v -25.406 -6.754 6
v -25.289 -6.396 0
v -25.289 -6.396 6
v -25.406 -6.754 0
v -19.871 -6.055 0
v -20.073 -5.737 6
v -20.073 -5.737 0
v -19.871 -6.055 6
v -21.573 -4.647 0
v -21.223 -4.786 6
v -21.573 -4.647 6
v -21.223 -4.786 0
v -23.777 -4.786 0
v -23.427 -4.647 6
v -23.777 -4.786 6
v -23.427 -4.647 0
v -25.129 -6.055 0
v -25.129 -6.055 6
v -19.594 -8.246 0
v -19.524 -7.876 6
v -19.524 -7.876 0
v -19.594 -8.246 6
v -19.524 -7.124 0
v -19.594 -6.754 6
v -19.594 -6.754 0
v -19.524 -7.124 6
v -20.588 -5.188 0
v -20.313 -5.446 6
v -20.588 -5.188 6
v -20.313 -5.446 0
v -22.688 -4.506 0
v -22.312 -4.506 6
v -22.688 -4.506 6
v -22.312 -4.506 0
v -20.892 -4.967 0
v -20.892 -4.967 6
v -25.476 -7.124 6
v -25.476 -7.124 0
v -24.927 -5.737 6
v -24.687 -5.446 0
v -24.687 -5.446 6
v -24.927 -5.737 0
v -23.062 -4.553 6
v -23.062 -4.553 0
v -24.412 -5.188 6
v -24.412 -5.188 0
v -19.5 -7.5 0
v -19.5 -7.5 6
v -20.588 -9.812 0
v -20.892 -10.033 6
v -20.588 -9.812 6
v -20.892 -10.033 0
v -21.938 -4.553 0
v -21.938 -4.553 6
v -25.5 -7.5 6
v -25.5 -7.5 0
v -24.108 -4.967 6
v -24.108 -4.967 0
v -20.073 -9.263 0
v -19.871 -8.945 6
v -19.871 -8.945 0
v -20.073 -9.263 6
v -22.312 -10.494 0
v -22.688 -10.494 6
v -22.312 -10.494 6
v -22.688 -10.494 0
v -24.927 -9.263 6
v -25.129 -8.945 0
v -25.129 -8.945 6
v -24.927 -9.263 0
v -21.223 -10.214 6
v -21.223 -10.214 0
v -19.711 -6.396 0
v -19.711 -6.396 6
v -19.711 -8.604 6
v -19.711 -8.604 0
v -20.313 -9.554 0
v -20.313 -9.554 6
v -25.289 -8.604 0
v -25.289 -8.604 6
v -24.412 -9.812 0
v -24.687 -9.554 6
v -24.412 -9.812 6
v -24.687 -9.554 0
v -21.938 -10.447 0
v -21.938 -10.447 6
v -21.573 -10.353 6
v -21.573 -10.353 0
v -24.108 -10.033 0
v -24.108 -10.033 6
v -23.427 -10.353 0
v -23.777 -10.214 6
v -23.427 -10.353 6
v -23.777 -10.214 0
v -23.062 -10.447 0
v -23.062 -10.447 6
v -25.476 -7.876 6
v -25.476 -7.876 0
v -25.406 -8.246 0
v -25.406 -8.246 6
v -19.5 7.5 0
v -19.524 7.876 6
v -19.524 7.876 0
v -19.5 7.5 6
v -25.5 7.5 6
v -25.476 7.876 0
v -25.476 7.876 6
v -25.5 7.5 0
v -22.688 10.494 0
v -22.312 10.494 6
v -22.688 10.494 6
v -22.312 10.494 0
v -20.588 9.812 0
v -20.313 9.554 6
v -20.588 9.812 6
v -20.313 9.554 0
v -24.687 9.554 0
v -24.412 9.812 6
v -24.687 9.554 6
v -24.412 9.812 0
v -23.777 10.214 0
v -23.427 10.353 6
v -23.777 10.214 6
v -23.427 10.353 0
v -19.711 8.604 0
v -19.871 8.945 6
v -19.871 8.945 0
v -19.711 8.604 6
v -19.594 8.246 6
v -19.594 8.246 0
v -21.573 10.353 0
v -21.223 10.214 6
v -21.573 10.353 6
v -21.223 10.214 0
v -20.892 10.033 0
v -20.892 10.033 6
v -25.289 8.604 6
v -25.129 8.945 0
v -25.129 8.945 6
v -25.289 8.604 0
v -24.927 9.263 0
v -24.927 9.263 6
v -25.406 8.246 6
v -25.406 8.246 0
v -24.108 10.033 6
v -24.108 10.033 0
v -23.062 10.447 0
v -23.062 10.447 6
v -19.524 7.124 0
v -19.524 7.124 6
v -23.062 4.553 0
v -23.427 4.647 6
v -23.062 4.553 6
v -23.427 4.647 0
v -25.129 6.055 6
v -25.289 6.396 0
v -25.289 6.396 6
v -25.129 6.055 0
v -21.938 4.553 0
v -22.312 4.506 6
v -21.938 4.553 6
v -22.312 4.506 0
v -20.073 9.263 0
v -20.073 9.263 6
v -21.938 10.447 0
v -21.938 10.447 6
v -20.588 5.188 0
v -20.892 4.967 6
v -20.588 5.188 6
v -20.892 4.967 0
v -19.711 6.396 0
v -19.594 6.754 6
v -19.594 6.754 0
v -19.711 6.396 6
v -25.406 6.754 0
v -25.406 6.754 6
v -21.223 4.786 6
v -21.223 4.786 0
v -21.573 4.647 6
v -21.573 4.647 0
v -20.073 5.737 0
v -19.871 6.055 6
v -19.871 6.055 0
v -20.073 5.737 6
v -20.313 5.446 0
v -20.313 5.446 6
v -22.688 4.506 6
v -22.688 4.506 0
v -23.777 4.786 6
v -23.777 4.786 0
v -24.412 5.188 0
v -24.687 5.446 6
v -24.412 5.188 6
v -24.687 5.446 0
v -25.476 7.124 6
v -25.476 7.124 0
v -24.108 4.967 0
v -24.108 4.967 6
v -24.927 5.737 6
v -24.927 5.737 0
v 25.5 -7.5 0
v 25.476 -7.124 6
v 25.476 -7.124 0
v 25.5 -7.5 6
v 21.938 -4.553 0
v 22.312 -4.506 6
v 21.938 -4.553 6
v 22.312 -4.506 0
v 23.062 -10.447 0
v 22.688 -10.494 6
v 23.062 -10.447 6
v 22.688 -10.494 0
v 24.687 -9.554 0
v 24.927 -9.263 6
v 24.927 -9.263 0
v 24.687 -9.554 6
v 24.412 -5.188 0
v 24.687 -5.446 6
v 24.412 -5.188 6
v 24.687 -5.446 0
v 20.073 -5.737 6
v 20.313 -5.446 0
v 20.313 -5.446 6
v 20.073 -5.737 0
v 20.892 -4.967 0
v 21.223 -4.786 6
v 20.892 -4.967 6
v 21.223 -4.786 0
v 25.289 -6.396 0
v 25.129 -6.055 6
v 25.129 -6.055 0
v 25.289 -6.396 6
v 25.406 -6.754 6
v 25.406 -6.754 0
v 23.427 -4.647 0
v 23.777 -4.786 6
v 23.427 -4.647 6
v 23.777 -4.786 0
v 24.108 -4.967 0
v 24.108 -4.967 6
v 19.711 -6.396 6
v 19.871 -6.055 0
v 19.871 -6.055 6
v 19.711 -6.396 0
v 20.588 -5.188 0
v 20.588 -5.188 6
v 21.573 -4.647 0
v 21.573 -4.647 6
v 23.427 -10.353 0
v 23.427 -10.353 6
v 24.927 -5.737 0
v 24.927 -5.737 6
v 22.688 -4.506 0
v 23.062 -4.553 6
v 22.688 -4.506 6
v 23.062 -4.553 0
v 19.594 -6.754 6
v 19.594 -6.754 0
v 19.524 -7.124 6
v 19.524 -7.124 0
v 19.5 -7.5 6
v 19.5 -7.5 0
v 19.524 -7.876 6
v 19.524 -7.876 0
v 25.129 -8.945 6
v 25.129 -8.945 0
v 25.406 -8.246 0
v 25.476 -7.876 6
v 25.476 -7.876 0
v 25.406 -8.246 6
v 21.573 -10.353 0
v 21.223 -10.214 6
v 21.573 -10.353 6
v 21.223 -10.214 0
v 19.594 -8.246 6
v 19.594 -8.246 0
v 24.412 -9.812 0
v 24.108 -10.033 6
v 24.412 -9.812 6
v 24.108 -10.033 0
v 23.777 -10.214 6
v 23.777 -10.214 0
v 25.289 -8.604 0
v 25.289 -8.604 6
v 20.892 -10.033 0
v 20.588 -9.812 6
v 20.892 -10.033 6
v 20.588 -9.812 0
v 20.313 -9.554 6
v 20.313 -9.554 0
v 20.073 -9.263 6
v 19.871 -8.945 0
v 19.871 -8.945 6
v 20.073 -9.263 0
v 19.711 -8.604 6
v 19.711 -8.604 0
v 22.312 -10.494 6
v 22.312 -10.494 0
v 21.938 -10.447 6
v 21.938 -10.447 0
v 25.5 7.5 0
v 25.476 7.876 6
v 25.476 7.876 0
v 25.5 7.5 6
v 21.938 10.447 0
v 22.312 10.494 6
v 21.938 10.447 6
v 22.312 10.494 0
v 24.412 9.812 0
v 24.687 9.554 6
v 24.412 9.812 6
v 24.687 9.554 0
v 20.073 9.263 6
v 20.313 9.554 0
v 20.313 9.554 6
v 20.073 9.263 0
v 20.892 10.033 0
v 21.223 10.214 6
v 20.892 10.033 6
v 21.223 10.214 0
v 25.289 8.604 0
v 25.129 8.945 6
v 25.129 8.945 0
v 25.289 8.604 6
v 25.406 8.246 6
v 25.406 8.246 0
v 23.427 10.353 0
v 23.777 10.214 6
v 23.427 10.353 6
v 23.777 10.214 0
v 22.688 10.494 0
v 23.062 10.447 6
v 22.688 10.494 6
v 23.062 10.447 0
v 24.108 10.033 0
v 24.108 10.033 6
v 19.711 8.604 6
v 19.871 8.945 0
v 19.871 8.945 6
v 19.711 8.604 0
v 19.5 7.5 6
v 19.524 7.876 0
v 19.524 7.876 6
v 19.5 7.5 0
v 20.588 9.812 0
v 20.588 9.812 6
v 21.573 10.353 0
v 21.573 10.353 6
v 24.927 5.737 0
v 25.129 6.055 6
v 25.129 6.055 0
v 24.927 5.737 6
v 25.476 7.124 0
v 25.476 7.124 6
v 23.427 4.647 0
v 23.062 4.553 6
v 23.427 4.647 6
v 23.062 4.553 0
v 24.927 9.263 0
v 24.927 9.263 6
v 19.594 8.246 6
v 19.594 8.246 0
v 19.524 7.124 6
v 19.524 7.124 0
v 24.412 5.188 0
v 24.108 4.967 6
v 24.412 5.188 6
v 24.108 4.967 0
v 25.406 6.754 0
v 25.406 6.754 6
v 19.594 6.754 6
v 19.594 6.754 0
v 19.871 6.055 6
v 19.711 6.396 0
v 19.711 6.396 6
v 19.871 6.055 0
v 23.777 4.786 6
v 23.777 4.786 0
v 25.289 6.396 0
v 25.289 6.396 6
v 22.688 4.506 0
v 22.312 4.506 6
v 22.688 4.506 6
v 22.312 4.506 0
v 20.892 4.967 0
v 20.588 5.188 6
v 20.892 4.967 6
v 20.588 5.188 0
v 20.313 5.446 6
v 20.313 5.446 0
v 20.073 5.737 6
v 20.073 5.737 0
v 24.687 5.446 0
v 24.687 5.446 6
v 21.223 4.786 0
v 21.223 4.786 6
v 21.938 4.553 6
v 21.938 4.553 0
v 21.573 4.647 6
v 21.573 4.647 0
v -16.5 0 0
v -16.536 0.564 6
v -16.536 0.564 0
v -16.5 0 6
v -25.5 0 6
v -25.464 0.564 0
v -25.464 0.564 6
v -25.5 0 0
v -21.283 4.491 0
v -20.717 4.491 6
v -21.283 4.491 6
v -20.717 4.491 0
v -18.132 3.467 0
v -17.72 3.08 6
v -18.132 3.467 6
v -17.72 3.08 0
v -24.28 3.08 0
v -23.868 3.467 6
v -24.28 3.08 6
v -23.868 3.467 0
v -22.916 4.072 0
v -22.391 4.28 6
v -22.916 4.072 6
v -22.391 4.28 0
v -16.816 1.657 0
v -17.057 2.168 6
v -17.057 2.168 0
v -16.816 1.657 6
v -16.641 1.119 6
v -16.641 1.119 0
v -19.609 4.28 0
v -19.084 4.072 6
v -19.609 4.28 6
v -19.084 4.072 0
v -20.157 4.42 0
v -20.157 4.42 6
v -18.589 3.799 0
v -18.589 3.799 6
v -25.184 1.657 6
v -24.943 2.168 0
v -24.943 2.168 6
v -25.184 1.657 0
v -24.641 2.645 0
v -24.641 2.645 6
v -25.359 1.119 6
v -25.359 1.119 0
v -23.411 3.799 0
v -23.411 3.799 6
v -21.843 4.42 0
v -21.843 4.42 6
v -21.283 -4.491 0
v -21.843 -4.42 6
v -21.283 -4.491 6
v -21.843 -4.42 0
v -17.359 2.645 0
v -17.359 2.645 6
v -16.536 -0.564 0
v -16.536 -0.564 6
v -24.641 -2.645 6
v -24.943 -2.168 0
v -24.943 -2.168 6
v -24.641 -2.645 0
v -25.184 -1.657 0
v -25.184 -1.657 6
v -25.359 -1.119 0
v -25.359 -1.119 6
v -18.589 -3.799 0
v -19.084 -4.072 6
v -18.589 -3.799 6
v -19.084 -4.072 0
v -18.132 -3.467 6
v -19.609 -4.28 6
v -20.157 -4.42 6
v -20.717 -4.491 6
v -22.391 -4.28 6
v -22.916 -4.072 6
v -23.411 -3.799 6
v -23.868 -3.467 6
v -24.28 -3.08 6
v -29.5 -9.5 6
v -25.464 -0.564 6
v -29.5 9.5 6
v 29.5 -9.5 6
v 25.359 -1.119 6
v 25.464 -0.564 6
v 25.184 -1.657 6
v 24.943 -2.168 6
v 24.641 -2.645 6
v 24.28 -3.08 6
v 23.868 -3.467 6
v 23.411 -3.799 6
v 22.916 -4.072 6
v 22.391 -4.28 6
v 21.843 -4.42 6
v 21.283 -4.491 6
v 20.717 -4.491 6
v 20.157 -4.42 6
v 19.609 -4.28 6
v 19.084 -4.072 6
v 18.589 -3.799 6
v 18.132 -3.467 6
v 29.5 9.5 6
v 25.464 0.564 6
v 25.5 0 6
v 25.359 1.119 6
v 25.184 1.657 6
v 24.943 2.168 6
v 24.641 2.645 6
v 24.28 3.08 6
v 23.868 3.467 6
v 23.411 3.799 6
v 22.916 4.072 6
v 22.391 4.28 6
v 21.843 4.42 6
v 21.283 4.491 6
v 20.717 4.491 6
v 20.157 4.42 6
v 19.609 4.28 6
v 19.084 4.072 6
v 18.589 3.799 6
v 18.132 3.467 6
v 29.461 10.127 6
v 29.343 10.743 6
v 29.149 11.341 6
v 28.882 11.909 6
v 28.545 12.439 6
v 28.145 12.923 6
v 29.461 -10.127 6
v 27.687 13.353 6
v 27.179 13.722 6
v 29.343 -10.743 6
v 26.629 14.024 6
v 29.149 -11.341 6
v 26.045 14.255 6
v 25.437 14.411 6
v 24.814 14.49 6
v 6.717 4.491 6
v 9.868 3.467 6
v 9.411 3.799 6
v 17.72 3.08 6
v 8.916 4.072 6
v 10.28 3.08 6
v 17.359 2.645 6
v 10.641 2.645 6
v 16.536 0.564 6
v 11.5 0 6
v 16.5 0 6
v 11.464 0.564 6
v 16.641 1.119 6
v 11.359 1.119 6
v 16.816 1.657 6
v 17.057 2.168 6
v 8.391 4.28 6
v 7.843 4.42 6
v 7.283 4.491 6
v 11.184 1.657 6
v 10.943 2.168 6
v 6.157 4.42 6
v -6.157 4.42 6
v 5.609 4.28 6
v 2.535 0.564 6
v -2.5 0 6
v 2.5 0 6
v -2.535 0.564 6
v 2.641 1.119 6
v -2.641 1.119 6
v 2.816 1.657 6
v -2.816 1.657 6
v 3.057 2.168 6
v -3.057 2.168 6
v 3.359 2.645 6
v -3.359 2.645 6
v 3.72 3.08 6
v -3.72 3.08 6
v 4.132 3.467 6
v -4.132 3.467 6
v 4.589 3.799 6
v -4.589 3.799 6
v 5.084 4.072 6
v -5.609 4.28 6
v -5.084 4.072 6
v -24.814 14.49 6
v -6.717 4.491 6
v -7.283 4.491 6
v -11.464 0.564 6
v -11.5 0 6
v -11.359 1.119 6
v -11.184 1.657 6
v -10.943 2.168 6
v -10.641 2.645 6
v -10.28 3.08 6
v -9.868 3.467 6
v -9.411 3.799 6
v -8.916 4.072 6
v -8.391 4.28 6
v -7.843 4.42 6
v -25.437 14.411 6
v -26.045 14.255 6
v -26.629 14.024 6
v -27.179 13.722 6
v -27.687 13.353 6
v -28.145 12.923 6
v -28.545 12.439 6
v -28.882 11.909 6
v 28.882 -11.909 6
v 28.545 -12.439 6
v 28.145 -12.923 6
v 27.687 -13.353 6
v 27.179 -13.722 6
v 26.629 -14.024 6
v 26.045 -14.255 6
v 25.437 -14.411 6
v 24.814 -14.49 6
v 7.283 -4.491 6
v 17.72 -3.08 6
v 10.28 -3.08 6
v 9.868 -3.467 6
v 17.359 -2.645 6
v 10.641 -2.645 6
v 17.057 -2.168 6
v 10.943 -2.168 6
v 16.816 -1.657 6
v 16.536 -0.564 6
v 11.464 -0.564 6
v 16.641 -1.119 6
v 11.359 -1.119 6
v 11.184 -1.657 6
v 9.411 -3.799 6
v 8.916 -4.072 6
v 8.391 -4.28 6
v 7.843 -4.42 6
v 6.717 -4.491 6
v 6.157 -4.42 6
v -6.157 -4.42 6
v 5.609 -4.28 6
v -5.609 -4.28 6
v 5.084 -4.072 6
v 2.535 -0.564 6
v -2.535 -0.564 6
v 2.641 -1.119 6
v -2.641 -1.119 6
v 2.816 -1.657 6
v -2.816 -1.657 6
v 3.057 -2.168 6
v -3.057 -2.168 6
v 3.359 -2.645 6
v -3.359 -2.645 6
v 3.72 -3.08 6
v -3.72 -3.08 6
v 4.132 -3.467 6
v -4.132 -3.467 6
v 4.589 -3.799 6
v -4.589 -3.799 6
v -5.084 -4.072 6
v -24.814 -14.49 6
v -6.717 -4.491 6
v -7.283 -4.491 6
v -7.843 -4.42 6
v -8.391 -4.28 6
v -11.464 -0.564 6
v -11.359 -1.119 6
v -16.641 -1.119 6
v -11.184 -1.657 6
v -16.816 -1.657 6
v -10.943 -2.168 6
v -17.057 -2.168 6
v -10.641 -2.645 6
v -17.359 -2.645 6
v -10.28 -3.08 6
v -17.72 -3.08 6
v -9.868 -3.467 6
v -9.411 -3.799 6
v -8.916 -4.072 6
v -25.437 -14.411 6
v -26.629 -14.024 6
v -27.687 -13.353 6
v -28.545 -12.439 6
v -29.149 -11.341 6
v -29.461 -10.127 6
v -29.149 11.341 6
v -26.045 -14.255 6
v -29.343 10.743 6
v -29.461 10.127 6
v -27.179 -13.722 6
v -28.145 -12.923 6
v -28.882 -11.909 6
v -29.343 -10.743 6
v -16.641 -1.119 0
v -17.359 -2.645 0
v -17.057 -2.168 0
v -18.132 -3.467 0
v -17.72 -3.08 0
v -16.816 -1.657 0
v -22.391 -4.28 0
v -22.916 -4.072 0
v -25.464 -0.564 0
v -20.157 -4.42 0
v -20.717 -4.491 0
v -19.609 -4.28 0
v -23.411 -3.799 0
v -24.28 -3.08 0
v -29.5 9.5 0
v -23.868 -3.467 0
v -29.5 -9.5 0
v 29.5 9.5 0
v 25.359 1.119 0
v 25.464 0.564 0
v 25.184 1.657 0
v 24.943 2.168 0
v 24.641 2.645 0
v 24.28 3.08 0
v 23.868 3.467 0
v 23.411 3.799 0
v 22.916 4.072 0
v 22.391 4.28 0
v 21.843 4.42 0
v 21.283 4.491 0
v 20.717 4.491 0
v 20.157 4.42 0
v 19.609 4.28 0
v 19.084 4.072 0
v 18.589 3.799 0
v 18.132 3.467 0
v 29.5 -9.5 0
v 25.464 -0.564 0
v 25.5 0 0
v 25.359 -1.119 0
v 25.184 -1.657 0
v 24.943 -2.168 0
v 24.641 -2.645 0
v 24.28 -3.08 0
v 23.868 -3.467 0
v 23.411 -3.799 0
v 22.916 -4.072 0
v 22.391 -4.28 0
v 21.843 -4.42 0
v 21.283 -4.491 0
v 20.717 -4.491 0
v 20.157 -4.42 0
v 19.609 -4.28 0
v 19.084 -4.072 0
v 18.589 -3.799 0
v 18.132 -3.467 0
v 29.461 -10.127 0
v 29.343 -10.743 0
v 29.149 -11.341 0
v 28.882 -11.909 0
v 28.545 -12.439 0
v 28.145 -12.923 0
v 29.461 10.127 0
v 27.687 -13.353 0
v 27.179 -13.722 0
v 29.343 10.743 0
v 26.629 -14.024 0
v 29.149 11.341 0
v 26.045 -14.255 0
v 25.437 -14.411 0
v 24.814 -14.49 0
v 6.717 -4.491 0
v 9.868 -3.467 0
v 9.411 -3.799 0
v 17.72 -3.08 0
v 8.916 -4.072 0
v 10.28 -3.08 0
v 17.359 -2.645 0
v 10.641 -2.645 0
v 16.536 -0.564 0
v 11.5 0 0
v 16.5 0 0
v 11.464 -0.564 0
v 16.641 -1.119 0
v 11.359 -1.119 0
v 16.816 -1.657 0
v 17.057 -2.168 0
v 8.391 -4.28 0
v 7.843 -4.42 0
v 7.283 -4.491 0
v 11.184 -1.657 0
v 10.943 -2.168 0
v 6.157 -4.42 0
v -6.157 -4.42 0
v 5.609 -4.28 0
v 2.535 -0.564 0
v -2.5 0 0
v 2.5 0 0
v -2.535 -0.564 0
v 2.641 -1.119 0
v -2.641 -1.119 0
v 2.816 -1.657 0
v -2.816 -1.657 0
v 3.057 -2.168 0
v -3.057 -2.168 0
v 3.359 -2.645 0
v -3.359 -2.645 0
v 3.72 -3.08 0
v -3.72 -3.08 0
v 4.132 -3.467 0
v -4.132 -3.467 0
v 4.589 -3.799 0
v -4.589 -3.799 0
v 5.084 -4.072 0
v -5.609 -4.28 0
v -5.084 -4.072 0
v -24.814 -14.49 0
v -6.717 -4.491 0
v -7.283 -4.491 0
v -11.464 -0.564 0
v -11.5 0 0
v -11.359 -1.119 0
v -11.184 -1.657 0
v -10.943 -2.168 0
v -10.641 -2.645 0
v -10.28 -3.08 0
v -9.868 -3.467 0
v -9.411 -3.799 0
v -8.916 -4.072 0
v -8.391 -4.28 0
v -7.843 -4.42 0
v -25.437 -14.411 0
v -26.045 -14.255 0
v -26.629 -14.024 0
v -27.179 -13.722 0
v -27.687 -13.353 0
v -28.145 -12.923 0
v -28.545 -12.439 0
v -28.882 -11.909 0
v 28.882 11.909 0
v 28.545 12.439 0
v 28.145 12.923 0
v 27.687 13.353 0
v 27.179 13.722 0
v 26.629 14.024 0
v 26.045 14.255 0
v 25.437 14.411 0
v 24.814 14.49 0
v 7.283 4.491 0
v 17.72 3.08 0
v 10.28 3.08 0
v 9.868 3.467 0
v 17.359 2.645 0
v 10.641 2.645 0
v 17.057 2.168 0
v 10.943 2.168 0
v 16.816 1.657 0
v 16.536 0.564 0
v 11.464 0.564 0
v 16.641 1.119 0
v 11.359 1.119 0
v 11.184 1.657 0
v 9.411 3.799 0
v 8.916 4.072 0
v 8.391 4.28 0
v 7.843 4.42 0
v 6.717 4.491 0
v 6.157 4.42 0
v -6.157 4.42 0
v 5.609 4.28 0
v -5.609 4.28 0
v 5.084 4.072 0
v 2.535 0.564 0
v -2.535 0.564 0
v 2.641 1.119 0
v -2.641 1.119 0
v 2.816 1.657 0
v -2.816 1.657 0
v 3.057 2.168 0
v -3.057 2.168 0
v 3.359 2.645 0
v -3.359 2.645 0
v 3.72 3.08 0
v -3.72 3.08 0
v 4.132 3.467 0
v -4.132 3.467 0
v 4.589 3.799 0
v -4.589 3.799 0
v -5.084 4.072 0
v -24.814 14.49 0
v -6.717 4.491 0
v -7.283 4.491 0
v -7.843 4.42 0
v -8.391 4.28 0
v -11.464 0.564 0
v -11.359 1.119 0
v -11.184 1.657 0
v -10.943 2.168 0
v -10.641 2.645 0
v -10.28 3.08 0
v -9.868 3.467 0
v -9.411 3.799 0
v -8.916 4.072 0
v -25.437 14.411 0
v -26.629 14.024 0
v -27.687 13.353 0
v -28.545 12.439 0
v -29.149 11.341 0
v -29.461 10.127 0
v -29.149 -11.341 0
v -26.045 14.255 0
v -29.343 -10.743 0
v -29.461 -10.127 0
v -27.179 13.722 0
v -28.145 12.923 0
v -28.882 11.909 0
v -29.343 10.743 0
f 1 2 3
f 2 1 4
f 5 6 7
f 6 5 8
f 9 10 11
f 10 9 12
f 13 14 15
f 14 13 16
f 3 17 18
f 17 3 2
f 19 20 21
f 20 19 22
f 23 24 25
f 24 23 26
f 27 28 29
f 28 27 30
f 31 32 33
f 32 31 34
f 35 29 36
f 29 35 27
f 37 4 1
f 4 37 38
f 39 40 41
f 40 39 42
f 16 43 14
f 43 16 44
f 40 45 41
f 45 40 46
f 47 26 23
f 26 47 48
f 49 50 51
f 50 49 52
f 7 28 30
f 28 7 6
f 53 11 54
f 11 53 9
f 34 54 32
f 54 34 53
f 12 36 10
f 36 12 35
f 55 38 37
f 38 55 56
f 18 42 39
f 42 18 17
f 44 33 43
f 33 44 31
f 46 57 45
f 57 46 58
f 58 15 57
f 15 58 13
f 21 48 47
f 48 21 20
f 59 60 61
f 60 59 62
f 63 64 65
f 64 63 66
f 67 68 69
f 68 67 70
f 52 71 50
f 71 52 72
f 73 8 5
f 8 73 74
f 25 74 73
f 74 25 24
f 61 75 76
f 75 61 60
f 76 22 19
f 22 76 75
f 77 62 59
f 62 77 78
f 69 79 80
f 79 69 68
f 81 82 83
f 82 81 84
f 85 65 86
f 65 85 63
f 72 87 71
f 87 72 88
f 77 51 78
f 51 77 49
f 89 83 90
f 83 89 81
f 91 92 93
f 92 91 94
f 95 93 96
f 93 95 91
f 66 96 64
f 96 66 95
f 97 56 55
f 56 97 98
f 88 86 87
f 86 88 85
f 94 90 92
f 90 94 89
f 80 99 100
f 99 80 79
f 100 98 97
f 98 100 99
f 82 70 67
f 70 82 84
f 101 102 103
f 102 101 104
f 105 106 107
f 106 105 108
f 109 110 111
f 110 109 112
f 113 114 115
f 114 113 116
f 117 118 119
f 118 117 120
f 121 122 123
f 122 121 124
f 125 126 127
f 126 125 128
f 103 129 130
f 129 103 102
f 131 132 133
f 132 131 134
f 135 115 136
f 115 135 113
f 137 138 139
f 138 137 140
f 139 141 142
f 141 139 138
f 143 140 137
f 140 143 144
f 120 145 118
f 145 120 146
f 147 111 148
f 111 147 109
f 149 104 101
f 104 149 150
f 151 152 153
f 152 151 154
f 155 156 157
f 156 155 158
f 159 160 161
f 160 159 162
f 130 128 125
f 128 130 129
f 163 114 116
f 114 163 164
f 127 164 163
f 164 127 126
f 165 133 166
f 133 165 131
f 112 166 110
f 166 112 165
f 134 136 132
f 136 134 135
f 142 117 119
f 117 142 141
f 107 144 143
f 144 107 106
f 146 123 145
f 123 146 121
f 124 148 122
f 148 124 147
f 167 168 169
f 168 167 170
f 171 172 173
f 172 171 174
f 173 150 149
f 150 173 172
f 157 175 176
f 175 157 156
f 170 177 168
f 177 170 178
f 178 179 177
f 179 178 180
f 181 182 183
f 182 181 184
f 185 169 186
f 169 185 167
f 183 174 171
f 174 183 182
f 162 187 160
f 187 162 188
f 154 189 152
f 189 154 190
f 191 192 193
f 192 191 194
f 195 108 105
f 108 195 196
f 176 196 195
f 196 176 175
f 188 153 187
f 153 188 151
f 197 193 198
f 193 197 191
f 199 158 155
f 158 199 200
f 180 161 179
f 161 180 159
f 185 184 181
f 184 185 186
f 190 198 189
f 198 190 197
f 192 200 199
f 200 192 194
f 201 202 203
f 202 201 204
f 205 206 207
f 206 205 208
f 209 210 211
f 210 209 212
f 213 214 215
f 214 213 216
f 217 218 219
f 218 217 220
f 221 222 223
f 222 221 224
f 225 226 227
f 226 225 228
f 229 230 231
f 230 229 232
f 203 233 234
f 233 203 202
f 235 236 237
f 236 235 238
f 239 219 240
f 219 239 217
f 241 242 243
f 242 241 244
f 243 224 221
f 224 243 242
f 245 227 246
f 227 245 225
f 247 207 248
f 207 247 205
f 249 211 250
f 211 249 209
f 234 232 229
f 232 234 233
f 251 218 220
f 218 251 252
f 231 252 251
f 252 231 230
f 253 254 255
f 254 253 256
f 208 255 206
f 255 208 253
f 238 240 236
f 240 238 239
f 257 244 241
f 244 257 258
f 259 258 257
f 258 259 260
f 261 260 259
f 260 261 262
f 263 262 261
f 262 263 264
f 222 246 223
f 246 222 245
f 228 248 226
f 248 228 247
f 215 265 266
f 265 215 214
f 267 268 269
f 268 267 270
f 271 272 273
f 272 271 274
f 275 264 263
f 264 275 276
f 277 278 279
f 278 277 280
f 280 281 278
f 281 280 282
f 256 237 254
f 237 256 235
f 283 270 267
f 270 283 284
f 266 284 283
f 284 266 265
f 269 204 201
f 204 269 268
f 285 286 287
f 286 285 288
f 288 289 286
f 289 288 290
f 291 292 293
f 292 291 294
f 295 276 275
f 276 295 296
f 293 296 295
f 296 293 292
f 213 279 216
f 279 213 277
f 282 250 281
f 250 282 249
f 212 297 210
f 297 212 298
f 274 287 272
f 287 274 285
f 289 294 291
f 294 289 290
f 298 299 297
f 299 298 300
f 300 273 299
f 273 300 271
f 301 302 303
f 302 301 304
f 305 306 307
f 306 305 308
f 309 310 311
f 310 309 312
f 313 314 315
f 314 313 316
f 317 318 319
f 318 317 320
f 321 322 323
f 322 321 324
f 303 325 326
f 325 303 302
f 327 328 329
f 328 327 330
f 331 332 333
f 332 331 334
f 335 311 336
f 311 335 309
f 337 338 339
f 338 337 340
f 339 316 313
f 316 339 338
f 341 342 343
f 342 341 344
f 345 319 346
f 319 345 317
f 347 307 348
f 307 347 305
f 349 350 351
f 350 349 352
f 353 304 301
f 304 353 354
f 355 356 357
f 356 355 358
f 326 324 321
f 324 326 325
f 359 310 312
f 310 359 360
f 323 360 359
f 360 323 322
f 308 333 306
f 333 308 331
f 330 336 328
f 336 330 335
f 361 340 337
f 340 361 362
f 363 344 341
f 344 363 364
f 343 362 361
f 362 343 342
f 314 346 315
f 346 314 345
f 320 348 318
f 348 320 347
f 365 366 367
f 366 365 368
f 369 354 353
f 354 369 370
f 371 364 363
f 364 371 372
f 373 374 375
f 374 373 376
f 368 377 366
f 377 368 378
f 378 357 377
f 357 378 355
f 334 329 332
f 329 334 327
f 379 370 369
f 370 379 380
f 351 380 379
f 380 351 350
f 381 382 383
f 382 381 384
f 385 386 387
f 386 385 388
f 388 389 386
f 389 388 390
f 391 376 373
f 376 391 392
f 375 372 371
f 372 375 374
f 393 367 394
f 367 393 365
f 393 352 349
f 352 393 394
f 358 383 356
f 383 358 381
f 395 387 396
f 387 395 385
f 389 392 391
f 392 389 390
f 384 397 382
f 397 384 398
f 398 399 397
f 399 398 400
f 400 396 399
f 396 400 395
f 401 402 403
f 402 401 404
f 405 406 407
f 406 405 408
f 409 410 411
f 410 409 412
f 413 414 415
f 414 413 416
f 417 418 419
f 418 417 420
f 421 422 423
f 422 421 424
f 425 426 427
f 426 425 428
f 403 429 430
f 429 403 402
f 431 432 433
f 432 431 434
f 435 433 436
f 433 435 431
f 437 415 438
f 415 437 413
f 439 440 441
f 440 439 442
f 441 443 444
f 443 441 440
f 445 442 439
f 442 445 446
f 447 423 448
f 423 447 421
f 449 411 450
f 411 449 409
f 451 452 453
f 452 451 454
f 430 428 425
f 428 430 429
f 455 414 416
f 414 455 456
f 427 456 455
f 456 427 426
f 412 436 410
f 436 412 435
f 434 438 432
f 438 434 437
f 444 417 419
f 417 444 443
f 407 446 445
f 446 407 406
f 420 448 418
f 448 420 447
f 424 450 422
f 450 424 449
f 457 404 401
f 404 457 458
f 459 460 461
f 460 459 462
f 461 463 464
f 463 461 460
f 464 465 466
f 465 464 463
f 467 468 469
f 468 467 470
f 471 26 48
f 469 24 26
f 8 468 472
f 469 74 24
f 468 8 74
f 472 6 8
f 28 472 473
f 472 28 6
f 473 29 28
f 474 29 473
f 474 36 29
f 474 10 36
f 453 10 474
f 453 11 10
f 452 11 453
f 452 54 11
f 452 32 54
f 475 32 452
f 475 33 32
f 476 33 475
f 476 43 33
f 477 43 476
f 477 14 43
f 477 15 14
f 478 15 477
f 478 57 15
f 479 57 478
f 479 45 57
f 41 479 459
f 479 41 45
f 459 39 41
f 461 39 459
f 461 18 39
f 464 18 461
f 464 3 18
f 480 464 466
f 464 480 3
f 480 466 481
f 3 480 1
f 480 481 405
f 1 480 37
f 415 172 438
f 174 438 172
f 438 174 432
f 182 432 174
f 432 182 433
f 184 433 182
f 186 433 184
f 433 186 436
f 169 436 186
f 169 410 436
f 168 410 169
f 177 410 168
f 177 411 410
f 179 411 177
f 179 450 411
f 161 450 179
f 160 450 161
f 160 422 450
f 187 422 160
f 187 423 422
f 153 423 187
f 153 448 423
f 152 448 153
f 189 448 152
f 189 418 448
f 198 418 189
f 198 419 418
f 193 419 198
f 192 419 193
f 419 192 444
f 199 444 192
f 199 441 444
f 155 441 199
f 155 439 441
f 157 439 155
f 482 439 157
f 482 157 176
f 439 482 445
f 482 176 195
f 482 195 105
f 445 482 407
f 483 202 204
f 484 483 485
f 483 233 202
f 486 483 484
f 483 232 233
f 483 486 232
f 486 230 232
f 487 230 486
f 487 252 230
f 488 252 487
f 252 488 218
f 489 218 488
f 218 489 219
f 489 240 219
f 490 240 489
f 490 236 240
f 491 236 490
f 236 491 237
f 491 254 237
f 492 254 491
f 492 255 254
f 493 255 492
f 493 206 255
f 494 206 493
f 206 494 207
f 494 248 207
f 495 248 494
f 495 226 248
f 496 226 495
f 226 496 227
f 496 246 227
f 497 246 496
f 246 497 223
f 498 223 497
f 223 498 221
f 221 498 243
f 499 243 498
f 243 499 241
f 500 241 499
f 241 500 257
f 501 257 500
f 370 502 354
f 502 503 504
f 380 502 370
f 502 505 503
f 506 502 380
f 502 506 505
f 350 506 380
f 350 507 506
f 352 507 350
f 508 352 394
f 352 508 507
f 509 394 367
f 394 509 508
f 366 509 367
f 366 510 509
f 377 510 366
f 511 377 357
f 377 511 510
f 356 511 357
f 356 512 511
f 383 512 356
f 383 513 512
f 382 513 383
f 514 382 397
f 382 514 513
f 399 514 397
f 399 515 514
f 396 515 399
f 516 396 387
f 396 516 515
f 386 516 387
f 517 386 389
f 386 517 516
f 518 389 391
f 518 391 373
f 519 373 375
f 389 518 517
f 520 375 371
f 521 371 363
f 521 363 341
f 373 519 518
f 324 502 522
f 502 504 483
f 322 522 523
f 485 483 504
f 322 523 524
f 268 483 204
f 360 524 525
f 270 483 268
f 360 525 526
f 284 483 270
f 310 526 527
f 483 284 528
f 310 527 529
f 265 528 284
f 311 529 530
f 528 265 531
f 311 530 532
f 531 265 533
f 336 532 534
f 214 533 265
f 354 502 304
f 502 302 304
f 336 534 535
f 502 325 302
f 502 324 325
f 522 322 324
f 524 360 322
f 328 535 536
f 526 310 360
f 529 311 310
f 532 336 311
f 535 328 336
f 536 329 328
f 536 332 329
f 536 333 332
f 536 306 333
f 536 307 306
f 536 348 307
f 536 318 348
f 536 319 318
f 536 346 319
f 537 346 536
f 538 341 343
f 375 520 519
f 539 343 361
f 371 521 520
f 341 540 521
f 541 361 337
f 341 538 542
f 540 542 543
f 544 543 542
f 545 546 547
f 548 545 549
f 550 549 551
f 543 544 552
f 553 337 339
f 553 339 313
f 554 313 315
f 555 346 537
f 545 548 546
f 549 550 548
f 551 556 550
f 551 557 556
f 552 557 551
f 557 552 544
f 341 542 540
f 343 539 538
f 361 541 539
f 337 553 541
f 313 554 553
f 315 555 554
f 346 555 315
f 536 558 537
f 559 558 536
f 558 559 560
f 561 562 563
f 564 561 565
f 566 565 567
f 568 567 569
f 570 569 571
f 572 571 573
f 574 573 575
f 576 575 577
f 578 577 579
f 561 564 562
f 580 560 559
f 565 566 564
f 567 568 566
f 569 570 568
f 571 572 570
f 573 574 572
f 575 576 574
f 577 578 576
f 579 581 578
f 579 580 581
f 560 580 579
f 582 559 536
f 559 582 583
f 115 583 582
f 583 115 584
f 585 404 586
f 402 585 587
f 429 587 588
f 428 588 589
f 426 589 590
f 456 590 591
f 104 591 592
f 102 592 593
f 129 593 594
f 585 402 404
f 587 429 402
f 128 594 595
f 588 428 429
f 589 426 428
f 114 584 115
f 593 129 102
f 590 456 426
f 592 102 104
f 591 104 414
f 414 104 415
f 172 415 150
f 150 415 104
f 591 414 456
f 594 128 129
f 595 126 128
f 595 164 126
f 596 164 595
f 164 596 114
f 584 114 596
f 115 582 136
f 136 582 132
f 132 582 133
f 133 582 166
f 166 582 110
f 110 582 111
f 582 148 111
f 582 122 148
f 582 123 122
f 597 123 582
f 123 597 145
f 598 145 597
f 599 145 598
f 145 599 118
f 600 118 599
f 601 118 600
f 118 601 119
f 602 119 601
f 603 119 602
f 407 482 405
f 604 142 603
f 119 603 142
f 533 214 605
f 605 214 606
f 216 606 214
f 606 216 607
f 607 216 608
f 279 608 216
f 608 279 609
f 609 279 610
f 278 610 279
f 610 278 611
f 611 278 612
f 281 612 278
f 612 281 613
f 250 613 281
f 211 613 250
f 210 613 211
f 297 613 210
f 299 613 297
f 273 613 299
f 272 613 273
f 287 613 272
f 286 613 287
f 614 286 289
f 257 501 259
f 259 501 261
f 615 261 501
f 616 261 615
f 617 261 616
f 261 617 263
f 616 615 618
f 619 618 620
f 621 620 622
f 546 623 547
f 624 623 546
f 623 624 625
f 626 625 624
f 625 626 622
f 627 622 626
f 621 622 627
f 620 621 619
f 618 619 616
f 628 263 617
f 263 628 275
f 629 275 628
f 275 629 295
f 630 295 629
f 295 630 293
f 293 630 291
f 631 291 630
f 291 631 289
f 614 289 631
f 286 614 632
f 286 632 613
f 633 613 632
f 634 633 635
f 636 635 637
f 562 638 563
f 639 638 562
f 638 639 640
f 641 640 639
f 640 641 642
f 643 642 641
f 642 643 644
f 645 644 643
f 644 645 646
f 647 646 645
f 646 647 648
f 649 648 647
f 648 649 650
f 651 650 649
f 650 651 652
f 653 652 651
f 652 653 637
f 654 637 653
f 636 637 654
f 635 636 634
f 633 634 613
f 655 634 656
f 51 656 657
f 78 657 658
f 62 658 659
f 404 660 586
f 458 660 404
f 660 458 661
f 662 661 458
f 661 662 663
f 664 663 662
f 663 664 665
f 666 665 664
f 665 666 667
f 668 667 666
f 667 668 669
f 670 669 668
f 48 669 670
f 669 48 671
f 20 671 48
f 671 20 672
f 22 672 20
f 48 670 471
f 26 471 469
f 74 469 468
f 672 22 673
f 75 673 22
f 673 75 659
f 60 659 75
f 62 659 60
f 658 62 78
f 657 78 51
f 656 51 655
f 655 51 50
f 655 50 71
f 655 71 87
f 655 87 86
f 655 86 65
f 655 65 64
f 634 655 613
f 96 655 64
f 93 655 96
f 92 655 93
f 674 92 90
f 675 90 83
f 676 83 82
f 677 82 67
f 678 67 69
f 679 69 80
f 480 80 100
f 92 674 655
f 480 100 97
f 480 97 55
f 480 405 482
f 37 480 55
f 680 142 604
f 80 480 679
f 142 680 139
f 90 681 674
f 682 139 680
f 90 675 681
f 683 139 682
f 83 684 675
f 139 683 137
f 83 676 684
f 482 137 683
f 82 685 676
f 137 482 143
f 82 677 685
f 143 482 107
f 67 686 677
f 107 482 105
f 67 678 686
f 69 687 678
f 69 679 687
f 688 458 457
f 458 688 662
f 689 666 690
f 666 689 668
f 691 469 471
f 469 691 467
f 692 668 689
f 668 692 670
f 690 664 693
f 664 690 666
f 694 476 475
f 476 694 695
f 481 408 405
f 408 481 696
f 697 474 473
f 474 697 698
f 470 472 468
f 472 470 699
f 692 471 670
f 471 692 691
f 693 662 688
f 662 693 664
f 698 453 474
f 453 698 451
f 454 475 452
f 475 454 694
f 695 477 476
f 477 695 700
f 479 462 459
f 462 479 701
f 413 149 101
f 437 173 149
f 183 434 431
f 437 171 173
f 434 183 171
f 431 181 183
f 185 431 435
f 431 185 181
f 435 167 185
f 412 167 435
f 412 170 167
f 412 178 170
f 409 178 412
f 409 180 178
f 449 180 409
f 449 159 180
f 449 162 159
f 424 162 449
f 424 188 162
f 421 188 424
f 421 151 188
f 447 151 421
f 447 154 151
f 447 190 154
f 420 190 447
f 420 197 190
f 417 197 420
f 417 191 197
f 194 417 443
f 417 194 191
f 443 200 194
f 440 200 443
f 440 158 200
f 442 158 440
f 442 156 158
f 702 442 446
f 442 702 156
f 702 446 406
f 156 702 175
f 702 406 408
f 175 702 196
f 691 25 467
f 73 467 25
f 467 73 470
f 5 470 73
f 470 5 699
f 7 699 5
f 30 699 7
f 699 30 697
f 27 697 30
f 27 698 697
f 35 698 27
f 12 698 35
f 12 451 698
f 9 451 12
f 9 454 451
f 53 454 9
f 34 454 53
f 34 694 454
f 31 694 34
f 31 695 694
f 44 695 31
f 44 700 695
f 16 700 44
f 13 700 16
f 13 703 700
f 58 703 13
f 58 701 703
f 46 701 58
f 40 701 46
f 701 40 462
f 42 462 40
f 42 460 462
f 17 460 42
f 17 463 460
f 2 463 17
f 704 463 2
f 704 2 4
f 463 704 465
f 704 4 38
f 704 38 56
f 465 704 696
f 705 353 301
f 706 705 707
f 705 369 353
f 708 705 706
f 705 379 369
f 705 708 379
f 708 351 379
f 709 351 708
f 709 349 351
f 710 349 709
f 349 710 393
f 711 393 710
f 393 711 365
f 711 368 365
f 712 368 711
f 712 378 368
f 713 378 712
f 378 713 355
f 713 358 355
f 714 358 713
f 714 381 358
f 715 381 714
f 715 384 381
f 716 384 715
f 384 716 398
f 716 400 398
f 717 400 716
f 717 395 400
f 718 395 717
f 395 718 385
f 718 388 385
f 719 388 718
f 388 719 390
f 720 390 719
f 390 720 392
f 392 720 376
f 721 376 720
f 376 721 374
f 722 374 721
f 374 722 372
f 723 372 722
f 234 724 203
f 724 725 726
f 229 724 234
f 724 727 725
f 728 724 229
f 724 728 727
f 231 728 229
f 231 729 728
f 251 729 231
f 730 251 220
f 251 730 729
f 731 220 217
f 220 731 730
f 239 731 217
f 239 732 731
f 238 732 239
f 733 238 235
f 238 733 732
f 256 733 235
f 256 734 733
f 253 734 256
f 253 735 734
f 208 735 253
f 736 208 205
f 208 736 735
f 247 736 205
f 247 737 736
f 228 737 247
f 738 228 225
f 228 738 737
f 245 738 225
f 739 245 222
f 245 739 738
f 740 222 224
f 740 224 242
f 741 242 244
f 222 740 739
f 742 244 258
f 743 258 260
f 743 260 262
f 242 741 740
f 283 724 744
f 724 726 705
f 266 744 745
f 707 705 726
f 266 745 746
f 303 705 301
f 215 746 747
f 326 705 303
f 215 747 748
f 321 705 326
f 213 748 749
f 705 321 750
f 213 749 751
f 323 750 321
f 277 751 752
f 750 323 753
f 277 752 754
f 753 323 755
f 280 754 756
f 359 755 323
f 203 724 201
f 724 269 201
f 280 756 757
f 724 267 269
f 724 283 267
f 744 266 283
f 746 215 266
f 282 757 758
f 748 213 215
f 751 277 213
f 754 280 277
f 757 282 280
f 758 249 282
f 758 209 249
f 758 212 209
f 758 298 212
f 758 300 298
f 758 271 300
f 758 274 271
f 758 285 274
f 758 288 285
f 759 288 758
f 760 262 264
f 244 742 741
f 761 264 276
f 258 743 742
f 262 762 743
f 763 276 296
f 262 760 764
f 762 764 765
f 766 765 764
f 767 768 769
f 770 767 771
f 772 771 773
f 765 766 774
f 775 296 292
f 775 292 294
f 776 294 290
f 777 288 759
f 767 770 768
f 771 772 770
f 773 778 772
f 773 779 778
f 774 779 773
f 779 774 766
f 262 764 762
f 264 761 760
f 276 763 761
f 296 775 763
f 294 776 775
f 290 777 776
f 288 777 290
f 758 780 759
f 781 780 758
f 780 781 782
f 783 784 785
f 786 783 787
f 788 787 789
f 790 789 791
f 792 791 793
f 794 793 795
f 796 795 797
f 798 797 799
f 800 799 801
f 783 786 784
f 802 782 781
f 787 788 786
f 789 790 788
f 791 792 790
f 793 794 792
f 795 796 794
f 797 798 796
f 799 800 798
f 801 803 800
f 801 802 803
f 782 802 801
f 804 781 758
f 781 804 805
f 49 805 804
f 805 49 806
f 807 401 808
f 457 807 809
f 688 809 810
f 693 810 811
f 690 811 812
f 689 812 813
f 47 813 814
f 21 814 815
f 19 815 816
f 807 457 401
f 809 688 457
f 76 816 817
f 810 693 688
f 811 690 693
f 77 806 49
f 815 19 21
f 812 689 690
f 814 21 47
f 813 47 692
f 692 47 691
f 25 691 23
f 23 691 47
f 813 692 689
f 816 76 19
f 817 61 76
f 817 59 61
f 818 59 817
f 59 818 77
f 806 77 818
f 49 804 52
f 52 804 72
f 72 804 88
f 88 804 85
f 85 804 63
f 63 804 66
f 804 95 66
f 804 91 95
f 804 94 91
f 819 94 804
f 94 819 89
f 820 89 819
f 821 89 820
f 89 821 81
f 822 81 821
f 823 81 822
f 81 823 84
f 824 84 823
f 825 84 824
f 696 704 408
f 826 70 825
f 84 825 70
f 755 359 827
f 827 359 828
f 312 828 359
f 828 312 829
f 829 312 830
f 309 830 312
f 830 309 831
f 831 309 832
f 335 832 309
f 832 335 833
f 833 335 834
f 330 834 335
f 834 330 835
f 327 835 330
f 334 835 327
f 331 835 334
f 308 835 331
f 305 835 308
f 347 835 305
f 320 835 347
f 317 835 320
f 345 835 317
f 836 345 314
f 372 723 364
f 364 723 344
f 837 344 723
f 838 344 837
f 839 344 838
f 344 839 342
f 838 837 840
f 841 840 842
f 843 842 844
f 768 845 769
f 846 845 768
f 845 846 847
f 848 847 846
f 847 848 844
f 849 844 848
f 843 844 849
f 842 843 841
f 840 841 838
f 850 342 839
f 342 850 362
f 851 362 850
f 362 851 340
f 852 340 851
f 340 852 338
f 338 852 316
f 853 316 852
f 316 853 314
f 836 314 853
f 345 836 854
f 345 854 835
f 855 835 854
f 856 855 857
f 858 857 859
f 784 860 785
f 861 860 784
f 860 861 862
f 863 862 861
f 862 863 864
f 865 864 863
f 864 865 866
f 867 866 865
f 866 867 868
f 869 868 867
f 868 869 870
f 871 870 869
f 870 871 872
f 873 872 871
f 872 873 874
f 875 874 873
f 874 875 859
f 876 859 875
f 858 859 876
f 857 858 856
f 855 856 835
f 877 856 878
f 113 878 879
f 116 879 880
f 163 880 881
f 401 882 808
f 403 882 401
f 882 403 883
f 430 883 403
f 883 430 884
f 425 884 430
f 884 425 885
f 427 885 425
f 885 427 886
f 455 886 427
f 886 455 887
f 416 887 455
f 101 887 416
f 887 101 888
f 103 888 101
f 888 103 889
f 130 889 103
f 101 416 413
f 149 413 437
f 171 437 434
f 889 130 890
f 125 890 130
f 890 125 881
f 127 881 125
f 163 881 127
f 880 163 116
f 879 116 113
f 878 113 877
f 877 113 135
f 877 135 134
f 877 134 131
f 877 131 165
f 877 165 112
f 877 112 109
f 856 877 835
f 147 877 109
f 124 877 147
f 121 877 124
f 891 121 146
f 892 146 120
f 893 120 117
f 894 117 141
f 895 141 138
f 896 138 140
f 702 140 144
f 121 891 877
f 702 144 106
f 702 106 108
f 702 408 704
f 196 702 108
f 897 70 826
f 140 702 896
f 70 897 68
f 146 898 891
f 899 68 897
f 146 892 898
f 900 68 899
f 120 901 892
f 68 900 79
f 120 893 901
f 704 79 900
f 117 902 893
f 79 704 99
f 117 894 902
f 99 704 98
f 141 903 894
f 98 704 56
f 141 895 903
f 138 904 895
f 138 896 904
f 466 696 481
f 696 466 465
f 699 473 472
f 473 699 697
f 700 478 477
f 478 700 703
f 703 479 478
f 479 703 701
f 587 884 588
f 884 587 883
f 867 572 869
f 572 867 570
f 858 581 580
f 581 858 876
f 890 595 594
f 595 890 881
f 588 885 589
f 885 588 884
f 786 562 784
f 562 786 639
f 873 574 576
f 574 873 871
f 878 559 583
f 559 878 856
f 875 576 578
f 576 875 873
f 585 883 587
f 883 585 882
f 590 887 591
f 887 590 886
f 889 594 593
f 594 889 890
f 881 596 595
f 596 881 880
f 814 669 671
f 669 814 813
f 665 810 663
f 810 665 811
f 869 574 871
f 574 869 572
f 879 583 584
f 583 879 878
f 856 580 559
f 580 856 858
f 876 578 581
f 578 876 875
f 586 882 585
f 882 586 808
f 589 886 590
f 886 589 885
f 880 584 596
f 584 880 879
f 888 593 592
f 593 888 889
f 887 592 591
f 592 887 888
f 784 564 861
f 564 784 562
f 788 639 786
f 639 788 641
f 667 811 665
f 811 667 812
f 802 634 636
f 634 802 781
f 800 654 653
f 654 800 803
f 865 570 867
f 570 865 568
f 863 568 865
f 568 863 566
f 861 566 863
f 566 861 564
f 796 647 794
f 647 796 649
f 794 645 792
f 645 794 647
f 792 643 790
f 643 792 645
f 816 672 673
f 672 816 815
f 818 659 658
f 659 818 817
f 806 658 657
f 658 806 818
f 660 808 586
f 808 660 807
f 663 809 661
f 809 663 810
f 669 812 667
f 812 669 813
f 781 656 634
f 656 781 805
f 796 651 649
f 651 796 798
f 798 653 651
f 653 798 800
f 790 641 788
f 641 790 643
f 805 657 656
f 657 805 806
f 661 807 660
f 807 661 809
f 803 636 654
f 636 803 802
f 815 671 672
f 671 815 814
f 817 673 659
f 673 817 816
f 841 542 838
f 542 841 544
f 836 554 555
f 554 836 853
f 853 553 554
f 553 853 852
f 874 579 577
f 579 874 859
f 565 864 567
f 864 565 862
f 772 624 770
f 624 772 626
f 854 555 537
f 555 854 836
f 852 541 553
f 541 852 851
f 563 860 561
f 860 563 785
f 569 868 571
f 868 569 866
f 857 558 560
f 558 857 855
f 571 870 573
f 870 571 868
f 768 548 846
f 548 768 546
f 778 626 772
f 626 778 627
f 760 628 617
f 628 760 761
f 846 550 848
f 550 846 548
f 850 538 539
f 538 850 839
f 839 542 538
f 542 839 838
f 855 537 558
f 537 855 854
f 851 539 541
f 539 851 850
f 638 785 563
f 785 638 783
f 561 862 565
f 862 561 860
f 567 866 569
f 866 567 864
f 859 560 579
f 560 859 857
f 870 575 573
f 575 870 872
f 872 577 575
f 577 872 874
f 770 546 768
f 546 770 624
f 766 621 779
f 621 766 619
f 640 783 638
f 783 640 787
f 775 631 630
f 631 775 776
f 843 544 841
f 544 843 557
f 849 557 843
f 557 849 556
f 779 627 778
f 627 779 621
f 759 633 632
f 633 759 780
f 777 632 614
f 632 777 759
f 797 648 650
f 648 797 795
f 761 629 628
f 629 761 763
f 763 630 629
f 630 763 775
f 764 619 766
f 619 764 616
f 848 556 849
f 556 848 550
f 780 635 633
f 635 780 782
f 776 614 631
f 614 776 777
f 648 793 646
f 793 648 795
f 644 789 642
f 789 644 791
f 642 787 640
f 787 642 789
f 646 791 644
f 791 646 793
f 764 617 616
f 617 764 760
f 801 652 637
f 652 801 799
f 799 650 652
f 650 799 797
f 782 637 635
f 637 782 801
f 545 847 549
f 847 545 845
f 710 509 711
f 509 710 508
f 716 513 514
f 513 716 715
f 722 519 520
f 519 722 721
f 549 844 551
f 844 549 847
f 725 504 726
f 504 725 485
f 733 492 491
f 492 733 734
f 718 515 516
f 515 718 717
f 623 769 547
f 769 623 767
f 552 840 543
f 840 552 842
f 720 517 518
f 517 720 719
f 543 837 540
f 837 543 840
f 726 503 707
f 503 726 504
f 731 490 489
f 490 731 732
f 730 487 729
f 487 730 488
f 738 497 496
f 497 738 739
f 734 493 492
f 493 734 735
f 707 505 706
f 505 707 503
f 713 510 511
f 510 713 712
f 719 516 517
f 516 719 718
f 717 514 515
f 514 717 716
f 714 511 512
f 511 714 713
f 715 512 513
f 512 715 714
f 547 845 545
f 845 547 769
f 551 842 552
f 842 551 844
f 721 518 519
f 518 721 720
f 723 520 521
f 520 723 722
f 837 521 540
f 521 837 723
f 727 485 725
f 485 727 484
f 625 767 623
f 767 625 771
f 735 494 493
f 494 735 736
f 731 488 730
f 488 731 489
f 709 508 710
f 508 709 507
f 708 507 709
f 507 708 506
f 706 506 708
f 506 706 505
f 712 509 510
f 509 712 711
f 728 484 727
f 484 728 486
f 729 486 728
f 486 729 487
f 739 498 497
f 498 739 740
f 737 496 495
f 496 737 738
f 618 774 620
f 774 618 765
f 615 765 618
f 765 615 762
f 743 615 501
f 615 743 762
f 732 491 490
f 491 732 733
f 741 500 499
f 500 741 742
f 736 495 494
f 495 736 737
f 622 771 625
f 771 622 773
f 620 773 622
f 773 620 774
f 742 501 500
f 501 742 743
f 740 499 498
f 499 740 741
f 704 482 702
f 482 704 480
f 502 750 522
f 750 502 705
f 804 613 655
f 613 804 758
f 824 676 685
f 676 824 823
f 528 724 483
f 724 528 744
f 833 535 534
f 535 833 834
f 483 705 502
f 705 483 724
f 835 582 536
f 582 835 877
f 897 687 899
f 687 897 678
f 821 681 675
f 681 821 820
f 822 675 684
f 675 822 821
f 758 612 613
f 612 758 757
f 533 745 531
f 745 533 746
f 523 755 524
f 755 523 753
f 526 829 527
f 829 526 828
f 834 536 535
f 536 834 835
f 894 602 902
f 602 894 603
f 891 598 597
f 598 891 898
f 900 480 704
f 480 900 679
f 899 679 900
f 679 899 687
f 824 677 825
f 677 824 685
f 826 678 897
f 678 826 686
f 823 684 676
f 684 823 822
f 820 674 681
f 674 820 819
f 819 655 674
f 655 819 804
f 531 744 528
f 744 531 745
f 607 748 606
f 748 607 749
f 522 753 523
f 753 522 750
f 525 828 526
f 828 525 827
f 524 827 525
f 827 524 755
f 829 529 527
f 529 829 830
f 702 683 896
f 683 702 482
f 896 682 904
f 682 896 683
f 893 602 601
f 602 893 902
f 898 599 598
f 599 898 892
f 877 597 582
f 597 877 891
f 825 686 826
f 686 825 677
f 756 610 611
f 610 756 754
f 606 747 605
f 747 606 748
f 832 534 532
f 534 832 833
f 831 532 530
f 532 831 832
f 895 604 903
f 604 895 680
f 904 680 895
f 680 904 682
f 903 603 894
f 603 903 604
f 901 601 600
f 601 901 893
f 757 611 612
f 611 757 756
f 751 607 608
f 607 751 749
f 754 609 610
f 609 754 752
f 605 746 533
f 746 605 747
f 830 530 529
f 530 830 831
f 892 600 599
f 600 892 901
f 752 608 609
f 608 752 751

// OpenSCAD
$fn = 50;


difference() {
	union() {
		hull() {
			translate(v = [-24.5000000000, 9.5000000000, 0]) {
				cylinder(h = 6, r = 5);
			}
			translate(v = [24.5000000000, 9.5000000000, 0]) {
				cylinder(h = 6, r = 5);
			}
			translate(v = [-24.5000000000, -9.5000000000, 0]) {
				cylinder(h = 6, r = 5);
			}
			translate(v = [24.5000000000, -9.5000000000, 0]) {
				cylinder(h = 6, r = 5);
			}
		}
	}
	union() {
		#translate(v = [-22.5000000000, -7.5000000000, -100.0000000000]) {
			cylinder(h = 200, r = 3.0000000000);
		}
		#translate(v = [-22.5000000000, 7.5000000000, -100.0000000000]) {
			cylinder(h = 200, r = 3.0000000000);
		}
		#translate(v = [22.5000000000, -7.5000000000, -100.0000000000]) {
			cylinder(h = 200, r = 3.0000000000);
		}
		#translate(v = [22.5000000000, 7.5000000000, -100.0000000000]) {
			cylinder(h = 200, r = 3.0000000000);
		}
		#translate(v = [-21.0000000000, 0, 0]) {
			cylinder(h = 6, r = 4.5000000000);
		}
		#translate(v = [-7.0000000000, 0, 0]) {
			cylinder(h = 6, r = 4.5000000000);
		}
		#translate(v = [7.0000000000, 0, 0]) {
			cylinder(h = 6, r = 4.5000000000);
		}
		#translate(v = [21.0000000000, 0, 0]) {
			cylinder(h = 6, r = 4.5000000000);
		}
	}
}
